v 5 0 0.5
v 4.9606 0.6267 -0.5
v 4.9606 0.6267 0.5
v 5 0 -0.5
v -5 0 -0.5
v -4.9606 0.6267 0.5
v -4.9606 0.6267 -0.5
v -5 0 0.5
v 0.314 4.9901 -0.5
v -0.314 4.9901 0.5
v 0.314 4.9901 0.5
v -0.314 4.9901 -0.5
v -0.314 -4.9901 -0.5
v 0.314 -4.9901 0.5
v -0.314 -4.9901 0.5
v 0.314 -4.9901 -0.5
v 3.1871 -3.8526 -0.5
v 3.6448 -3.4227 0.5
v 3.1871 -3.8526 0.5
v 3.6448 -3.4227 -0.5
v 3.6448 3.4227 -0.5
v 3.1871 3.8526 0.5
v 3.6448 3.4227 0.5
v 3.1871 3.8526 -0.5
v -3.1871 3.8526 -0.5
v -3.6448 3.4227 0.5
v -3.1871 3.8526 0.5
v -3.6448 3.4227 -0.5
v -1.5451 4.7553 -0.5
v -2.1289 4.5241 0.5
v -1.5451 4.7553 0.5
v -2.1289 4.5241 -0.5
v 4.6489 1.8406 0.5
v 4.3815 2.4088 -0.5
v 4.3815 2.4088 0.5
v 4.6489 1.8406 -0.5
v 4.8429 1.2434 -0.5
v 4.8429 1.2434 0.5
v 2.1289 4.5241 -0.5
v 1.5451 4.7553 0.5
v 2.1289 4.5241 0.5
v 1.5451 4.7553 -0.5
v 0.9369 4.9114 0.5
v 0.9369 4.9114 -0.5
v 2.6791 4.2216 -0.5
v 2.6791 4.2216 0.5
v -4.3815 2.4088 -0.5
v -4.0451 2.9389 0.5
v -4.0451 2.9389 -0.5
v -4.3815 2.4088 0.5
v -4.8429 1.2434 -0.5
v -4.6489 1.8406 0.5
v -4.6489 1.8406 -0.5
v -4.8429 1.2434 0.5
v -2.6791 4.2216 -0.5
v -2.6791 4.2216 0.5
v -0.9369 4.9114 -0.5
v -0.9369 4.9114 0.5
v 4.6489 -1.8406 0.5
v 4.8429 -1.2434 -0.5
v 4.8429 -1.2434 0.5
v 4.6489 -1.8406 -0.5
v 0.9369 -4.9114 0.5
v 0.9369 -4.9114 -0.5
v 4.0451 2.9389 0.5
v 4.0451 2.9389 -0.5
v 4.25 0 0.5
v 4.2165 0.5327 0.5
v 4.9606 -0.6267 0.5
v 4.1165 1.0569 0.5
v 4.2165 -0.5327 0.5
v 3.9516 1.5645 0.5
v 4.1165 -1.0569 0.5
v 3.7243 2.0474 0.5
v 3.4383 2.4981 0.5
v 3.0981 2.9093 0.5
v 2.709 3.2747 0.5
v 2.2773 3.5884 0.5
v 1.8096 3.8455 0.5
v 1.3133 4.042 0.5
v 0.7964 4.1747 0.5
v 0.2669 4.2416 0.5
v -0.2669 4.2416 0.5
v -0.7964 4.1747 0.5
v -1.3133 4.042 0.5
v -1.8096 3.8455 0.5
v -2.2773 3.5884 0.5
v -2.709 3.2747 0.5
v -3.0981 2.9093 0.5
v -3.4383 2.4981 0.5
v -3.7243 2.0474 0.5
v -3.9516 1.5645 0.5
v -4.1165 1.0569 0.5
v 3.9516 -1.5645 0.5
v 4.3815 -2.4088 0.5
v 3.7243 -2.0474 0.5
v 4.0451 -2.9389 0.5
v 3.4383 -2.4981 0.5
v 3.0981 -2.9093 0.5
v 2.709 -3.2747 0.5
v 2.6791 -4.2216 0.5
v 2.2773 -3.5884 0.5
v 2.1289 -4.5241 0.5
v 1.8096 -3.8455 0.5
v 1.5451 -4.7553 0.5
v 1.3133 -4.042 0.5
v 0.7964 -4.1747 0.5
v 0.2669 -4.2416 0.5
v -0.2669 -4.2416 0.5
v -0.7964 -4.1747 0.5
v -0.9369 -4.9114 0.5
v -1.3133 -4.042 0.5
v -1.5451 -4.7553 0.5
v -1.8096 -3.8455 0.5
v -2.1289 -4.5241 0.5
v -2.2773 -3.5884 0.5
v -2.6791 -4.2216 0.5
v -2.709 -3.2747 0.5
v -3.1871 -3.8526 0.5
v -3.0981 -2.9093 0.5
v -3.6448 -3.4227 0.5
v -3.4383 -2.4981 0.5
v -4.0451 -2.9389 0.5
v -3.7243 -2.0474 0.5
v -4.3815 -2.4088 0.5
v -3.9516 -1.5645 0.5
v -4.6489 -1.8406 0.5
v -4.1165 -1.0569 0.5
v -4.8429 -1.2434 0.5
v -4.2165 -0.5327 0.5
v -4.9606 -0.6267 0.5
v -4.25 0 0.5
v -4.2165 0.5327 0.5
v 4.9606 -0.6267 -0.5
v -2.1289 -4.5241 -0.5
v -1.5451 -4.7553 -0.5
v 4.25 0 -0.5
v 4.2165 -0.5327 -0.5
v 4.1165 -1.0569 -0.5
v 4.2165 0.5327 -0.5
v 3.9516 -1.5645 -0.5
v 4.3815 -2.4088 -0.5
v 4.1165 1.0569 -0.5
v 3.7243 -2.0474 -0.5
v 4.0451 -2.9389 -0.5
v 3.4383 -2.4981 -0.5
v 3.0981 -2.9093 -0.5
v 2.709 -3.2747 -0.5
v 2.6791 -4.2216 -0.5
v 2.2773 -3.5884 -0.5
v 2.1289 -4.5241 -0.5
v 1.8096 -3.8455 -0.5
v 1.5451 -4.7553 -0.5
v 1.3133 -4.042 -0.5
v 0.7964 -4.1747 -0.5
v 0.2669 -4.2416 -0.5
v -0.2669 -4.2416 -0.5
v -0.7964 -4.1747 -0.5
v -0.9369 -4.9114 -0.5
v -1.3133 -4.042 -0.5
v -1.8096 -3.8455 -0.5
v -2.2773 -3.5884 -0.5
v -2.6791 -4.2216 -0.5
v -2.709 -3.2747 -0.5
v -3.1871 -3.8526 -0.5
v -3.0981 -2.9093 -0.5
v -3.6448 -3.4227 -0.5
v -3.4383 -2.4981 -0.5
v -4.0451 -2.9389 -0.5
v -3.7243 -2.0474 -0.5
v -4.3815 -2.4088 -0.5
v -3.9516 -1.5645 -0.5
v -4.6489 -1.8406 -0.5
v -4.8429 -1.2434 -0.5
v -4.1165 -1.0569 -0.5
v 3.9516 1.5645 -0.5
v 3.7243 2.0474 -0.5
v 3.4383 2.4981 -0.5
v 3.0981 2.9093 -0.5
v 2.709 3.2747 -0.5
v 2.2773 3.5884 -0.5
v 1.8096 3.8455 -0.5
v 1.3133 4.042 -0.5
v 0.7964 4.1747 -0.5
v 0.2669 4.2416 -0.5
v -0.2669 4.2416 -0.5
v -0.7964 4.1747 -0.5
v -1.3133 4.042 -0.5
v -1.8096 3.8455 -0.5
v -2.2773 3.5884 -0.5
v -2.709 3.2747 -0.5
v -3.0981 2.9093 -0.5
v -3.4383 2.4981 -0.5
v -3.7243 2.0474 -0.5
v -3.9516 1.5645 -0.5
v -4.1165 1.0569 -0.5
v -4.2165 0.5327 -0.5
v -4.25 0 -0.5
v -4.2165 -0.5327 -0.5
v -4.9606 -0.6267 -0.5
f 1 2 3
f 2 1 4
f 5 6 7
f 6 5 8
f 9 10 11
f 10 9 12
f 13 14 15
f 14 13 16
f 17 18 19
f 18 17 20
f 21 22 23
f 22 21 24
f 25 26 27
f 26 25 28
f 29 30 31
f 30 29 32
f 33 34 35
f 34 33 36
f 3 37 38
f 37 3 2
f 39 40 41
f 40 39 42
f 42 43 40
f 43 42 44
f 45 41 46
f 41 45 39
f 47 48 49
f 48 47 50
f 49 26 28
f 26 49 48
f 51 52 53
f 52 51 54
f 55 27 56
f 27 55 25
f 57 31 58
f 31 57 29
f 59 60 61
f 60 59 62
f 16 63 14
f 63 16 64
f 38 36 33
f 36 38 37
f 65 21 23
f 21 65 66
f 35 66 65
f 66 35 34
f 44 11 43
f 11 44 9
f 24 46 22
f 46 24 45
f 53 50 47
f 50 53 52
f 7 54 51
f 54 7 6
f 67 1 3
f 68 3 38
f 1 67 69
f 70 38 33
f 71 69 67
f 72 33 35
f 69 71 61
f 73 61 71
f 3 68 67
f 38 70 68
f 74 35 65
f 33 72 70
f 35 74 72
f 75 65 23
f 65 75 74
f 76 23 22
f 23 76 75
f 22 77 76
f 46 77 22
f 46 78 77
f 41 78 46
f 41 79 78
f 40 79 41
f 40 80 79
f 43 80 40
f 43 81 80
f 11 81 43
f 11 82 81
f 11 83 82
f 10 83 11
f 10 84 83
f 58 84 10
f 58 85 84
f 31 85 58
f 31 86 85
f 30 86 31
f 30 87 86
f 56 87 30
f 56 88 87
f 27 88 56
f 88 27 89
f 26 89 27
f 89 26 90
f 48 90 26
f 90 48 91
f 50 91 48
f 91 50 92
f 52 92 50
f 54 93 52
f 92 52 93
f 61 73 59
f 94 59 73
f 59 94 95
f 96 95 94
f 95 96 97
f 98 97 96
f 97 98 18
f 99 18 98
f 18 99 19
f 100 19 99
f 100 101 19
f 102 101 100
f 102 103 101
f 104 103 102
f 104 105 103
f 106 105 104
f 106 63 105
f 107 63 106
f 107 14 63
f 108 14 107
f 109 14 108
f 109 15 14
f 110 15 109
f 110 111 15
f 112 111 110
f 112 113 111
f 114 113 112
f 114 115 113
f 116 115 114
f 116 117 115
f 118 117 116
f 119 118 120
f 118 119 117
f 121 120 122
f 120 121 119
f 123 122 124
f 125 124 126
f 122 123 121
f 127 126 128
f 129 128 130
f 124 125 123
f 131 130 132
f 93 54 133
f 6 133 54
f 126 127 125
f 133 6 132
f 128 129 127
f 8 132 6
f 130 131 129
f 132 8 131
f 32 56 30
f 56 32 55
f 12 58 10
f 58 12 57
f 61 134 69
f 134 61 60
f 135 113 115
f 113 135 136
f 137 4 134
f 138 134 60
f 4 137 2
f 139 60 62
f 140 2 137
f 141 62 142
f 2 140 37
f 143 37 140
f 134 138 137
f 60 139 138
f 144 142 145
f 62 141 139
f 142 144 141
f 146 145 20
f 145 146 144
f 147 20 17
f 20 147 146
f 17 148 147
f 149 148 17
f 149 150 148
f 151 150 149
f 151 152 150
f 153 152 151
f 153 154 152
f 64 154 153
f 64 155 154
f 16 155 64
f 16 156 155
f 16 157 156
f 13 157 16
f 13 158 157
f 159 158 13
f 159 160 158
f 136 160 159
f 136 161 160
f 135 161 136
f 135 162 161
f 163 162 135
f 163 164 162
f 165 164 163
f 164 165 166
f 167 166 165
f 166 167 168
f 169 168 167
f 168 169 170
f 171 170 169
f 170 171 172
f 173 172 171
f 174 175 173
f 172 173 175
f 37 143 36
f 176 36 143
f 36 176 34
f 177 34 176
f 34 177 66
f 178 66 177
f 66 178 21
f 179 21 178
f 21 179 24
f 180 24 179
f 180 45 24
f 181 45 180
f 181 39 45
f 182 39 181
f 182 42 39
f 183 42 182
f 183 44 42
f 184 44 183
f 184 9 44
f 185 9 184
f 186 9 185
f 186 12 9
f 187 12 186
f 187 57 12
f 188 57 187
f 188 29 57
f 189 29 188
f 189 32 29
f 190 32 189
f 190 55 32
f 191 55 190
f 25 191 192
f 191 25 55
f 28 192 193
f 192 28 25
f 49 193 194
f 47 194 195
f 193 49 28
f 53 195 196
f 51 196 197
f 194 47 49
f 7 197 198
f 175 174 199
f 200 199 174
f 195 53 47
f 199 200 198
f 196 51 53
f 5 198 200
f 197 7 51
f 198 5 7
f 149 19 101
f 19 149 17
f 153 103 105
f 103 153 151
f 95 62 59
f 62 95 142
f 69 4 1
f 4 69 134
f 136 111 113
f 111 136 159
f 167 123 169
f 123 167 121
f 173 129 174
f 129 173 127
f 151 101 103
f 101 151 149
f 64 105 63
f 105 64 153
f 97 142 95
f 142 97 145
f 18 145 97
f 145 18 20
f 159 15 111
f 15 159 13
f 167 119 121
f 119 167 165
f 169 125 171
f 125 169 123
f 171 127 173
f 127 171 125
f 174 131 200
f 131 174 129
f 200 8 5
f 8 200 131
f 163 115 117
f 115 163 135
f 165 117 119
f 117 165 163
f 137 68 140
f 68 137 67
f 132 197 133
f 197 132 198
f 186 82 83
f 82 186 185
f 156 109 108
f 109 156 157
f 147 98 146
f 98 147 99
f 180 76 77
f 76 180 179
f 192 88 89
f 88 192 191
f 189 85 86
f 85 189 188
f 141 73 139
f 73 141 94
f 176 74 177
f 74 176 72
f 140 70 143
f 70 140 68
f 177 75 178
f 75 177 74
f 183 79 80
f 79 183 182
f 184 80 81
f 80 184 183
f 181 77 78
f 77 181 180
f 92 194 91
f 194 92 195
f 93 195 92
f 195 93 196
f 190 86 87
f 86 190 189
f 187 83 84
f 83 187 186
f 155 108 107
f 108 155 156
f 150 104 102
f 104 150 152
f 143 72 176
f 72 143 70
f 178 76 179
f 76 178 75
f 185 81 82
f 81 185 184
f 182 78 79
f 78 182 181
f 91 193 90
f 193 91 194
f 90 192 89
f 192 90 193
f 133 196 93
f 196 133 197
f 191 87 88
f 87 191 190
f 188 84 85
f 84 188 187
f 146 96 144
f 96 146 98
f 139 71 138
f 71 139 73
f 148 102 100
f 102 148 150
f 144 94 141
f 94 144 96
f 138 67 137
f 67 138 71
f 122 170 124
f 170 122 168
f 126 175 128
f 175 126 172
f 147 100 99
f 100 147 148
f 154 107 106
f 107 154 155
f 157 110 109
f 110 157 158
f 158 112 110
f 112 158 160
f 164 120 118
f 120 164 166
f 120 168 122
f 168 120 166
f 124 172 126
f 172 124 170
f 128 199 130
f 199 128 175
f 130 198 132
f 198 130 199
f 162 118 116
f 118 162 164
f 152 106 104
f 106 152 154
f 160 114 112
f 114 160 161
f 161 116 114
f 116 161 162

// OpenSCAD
$fn = 50;


difference() {
	union() {
		translate(v = [0, 0, -0.5000000000]) {
			cylinder(h = 1, r = 5.0000000000);
		}
	}
	union() {
		translate(v = [0, 0, -100.0000000000]) {
			cylinder(h = 200, r = 4.2500000000);
		}
	}
}
